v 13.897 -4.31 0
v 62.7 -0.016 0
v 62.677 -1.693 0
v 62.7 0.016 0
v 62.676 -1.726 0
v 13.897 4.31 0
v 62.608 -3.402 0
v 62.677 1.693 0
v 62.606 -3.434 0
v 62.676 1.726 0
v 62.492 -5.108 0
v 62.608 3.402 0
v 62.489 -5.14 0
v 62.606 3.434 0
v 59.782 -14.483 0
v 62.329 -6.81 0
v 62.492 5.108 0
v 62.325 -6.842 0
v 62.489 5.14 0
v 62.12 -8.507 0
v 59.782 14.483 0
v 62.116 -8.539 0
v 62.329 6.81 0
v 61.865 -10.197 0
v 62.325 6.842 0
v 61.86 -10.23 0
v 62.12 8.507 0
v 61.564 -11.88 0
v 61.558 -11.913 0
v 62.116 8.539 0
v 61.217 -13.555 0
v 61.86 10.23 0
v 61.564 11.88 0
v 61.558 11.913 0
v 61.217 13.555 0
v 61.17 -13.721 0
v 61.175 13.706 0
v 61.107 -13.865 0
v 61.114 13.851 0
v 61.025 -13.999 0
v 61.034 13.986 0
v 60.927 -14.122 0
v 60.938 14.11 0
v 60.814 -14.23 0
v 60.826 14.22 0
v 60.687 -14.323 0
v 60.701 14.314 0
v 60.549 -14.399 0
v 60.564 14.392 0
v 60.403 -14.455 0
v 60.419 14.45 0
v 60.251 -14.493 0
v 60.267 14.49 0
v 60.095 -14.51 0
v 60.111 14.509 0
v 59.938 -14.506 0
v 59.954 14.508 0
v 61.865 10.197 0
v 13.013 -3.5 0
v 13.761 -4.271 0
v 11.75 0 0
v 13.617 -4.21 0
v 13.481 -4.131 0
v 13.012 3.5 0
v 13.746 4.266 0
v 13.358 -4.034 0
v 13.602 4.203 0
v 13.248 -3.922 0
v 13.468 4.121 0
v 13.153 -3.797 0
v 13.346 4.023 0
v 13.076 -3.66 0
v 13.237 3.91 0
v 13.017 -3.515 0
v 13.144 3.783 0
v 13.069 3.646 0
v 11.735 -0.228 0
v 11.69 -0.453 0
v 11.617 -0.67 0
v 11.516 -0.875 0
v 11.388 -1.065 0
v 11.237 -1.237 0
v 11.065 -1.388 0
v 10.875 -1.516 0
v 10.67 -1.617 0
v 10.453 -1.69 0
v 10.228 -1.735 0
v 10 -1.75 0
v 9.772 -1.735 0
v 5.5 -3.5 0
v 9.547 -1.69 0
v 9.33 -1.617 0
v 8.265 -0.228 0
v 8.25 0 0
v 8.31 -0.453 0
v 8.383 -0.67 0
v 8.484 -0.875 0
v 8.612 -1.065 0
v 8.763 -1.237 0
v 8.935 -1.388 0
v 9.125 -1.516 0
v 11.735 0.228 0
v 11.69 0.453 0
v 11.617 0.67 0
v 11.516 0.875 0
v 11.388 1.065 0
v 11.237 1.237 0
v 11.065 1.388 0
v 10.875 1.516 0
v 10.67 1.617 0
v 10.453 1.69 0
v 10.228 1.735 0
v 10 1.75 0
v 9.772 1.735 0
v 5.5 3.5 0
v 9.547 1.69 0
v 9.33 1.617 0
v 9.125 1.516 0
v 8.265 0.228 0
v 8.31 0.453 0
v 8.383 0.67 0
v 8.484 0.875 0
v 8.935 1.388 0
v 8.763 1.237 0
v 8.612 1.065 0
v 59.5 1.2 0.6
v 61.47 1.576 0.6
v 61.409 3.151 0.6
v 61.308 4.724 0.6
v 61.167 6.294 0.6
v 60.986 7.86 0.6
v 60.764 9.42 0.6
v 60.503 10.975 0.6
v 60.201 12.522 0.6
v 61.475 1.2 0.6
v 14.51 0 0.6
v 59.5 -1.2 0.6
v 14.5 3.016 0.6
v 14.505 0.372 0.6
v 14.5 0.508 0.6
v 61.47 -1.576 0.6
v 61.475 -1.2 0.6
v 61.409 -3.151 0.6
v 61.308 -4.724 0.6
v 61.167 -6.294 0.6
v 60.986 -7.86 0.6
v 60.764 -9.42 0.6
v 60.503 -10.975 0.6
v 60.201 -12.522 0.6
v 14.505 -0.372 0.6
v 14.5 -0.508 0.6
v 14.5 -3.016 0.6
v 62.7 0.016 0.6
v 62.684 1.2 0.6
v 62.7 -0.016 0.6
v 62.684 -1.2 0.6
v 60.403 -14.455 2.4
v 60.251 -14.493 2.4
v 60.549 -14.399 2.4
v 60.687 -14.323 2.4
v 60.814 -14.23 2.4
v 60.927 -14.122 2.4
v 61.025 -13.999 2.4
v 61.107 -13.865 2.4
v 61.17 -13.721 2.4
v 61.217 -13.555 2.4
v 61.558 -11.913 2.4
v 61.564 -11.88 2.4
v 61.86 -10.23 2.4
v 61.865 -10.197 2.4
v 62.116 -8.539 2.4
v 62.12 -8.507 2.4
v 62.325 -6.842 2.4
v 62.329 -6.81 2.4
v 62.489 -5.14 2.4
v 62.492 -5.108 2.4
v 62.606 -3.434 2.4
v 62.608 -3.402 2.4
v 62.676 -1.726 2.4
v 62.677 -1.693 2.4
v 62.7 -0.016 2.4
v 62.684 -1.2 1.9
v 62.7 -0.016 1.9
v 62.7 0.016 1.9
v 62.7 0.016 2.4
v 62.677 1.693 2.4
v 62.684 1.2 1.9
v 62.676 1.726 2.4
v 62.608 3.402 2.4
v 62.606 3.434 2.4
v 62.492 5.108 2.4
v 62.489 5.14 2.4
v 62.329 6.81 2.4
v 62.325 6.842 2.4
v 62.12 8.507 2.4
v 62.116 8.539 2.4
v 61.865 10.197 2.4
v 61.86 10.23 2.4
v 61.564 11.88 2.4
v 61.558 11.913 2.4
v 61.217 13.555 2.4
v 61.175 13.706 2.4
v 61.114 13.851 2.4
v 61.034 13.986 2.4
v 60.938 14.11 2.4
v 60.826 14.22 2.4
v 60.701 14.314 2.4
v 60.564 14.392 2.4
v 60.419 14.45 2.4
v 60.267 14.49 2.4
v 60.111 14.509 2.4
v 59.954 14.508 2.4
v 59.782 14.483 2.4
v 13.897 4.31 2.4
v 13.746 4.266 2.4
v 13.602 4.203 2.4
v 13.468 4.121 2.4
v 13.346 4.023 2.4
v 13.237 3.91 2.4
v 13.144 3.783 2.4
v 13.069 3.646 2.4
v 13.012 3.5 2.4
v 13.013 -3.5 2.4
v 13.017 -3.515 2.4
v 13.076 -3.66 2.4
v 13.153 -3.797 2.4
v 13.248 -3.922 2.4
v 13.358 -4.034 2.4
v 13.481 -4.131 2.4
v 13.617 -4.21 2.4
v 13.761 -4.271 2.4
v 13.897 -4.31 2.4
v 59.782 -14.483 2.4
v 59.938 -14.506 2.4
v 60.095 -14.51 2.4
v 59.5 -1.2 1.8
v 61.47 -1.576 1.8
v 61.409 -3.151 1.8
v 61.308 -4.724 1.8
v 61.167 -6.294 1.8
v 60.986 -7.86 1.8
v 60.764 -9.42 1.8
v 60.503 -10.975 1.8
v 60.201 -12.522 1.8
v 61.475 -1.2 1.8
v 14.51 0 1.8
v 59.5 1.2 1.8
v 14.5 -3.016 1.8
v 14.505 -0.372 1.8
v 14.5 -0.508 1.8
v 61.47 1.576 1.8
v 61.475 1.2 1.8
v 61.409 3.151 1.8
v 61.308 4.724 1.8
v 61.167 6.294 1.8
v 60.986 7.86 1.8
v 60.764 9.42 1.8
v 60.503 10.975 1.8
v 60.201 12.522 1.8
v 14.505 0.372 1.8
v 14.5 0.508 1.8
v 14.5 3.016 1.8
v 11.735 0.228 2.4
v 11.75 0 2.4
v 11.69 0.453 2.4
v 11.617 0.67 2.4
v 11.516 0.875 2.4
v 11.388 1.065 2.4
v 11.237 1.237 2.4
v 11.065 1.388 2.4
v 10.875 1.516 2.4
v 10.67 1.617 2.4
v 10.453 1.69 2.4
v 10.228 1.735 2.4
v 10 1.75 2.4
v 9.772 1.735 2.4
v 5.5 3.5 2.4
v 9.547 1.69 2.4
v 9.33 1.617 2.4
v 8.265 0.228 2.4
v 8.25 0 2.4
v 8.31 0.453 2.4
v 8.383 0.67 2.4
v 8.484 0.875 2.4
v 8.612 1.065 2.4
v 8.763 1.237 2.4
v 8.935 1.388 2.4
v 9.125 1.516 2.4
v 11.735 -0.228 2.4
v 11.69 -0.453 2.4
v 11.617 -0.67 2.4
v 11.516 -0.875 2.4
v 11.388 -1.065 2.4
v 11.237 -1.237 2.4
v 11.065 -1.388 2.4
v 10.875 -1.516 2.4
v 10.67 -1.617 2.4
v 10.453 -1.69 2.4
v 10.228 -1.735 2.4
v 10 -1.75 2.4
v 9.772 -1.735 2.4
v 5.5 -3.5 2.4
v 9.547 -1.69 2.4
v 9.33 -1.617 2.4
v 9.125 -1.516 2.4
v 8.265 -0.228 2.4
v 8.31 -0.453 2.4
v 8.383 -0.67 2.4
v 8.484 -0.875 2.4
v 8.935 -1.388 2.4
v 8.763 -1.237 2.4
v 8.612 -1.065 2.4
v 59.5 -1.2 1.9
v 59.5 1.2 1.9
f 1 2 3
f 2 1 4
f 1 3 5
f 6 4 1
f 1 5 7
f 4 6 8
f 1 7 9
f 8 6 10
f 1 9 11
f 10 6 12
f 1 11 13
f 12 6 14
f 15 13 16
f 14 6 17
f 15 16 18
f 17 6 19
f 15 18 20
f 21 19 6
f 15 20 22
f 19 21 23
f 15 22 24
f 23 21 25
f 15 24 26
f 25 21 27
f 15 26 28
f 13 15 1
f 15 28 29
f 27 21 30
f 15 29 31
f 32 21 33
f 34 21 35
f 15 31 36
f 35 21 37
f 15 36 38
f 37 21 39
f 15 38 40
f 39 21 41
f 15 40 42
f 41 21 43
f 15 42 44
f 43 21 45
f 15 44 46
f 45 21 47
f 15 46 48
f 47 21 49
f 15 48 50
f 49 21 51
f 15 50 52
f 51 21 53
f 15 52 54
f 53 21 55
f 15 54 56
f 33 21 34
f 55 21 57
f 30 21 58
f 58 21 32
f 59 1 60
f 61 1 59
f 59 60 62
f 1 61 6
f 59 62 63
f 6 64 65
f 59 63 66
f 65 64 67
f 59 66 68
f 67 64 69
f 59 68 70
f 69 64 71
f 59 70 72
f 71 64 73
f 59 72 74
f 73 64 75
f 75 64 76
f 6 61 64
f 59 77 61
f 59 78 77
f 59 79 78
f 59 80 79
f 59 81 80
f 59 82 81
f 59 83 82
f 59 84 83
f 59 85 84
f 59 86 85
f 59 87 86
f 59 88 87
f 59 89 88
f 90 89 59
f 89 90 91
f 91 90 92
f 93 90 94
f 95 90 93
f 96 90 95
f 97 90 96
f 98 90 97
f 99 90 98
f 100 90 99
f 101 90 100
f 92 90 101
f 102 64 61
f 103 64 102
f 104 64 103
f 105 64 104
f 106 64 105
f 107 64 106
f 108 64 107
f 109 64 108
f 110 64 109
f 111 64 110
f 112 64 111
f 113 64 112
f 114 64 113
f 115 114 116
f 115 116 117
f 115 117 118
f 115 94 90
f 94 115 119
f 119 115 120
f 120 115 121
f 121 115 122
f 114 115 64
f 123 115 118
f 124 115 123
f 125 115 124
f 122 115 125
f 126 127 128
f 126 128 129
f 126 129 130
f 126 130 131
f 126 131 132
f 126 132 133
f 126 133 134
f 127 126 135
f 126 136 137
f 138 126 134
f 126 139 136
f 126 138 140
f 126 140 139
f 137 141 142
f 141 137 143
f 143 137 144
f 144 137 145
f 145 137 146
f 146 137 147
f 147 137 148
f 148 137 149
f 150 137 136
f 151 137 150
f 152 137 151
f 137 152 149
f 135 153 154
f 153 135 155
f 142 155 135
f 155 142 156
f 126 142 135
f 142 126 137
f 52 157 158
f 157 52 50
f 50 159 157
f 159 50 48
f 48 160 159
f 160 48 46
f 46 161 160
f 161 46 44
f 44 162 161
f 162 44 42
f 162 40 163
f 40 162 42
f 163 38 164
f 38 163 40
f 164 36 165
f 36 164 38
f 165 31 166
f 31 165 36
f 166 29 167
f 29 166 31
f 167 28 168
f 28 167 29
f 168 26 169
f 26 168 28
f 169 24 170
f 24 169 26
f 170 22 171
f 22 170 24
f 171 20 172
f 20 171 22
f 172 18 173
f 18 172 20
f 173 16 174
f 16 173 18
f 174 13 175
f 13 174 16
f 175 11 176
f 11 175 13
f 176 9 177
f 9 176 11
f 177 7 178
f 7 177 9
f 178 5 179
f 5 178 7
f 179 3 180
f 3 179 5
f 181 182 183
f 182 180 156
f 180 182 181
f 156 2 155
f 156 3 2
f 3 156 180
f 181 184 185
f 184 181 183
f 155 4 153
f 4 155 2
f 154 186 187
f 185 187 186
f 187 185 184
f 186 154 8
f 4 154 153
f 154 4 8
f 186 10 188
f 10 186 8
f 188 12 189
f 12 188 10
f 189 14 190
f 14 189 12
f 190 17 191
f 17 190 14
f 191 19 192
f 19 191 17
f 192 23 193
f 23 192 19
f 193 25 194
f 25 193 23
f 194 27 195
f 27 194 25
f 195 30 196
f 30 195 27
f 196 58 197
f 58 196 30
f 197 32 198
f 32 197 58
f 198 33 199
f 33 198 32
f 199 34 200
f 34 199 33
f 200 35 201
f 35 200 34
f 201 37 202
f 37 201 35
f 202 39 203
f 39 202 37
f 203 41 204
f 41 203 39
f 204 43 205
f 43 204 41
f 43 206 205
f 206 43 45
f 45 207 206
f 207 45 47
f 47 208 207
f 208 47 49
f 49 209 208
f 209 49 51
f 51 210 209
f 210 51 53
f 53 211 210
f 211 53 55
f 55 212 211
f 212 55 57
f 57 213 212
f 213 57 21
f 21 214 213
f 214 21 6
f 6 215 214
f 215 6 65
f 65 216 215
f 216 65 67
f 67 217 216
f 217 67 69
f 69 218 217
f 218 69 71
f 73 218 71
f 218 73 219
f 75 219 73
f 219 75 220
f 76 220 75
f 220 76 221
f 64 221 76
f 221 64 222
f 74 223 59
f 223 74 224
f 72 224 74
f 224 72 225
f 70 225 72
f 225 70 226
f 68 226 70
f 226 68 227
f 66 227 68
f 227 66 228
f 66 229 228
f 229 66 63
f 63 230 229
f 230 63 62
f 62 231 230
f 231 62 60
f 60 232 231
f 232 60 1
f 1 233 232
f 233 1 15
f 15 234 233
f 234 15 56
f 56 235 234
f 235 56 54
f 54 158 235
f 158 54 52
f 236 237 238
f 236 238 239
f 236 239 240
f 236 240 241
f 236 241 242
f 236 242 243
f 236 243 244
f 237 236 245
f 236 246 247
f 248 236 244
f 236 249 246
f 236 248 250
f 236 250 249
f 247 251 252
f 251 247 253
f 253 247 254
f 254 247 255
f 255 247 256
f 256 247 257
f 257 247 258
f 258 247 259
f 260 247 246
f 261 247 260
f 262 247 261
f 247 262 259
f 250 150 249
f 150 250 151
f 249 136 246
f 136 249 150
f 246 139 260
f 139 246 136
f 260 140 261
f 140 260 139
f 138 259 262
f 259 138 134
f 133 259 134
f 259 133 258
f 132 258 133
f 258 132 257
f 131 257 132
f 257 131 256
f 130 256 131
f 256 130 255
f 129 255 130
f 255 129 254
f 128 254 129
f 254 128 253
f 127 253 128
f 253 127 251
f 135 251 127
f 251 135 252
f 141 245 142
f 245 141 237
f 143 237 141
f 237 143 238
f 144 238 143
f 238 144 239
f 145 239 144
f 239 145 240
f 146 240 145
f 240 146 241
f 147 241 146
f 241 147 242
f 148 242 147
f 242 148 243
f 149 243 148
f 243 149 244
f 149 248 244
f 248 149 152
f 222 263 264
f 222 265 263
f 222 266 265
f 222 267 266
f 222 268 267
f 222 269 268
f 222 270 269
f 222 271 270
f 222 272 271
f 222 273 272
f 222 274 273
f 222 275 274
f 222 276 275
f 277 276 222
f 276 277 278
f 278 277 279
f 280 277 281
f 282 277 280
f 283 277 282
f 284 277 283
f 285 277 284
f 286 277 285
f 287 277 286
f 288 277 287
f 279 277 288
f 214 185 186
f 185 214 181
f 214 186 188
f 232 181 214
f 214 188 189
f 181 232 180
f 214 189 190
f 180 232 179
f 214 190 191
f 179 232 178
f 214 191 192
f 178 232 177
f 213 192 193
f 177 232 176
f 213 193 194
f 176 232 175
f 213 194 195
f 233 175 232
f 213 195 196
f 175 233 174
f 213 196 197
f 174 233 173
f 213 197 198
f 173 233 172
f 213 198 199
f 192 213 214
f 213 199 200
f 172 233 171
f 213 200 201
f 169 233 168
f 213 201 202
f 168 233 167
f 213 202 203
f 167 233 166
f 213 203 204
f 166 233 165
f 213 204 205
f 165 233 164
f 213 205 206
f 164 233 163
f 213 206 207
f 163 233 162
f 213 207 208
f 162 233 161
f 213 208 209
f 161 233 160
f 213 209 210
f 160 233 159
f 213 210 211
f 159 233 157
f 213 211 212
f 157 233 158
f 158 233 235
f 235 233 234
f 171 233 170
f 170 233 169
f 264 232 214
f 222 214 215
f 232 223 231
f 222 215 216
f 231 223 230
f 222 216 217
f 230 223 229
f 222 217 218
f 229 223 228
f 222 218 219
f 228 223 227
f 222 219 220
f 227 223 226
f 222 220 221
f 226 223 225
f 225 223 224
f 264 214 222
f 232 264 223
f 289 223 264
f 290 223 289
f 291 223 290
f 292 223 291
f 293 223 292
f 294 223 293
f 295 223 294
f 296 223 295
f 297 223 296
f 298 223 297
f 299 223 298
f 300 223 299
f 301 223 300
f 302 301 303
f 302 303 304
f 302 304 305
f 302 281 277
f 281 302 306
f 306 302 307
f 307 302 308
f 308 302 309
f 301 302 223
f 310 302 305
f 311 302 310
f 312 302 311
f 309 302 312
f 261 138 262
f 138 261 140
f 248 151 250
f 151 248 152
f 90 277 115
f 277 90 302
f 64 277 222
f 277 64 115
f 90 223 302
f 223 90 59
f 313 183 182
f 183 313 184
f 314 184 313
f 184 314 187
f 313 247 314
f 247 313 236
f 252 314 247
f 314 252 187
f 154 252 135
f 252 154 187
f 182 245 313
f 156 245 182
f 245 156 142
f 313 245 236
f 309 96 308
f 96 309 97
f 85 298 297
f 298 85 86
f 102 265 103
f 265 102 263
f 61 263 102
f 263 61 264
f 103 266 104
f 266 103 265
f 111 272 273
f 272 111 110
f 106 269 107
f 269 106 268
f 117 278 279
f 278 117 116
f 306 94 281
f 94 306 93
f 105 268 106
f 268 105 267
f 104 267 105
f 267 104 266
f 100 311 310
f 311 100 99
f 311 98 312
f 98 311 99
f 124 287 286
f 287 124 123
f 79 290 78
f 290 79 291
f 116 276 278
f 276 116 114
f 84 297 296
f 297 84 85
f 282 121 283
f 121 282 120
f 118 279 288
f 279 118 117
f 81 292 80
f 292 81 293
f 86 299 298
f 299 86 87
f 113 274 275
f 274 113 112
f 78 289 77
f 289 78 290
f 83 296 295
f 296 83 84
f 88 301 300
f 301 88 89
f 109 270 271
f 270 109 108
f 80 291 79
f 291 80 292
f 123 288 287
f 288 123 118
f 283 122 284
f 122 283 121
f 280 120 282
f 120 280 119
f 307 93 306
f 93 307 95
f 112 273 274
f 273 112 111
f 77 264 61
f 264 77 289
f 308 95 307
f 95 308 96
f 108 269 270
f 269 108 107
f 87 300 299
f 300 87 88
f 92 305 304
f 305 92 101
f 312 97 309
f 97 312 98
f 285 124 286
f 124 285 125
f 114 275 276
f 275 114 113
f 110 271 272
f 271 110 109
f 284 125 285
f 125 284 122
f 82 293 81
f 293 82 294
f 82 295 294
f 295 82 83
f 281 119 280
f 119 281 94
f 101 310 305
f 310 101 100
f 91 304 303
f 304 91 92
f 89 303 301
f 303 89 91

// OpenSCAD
// file: parameters.scad
// =============================================================================
// Gen-AY Vernier flux-claw mega - WOUND-AWARE (HARD GATE)
// Dual-rotor vernier: Rotor B +22.5 deg vs 12-slot stator; O5 flux claws
// =============================================================================

wire_awg            = 26;
wire_od             = 0.45;
turns               = 210;      // +5 vs Gen-AV 205
fill                = 0.70;
layers_per_face     = 2;
wind_build_axial    = layers_per_face * wire_od * fill;   // 0.63 mm
wind_build_radial   = 3 * wire_od * fill;                 // 0.945 mm

coil_id_r           = 14.5;
coil_od_r           = 61.5;
span_deg            = 25.0;
former_web          = 1.20;     // print floor LB walls
flange_t            = 0.60;
wall                = 1.2;
slot_w              = 2.4;
mount_hole          = 3.5;
tab_len             = 7.0;

former_bare_h       = former_web + 2 * flange_t;            // 2.40 mm
coil_envelope_h     = former_bare_h + 2 * wind_build_axial; // 3.66 mm

run_clear           = 0.50;
gap_spacer_h        = run_clear + wind_build_axial;         // 1.13 mm
m2m                 = coil_envelope_h + 2 * run_clear;      // 4.66 mm

coil_stations       = 12;
bay_r_in            = coil_id_r - 2.0 - wind_build_radial;
bay_r_out           = coil_od_r + 2.0 + wind_build_radial;
bay_span            = span_deg + 4.0;
bay_offset          = 2.0;
stator_thick        = former_bare_h;
stator_od           = 160.0;
shaft_clear_stator  = 34.0;
coil_mount_r        = 25.5;

large_pocket_d      = 20.3;
small_pocket_d      = 5.3;
pocket_h            = 5.2;
large_n             = 8;
R_large             = 38.0;     // closer to copper centroid vs AV R=38.5
R_small_inner       = 24.0;
R_small_mid         = 38.0;
R_small_outer       = 54.0;
carrier_od          = 156.0;
carrier_thick       = 7.5;
hub_h               = 10.0;
hub_od              = 30.0;
rotor_b_offset_deg  = 22.5;     // vernier offset vs 12-slot stator

shaft_bore          = 8.35;
bearing_d           = 21.85;
bearing_h           = 7.2;
m3_clear            = 3.5;
bolt_r_inner        = 36.0;
bolt_n_inner        = 6;
flange_bolt_r       = 72.0;
flange_bolt_n       = 6;
brace_r             = 68.0;
brace_d             = 4.3;
brace_n             = 4;

spacer_pad_od       = 14.0;
spacer_pad_id       = m3_clear;
endbell_od          = 160.0;
endbell_thick       = 8.0;
endbell_shaft_clear = 10.0;

$fn = 64;
// main file
// Gen-AY pancake former — wind BEFORE assembly
include <parameters.scad>;
$fn = 48;

module sector_2d(r_in, r_out, ang) {
    polygon([
        for (a = [-ang/2 : ang/16 : ang/2]) [r_in*cos(a), r_in*sin(a)],
        for (a = [ang/2 : -ang/16 : -ang/2]) [r_out*cos(a), r_out*sin(a)]
    ]);
}
module flange() {
    linear_extrude(flange_t) offset(r=wall) sector_2d(coil_id_r, coil_od_r, span_deg);
}
difference() {
    union() {
        flange();
        translate([0, 0, flange_t])
            linear_extrude(former_web)
                difference() {
                    offset(r=wall) sector_2d(coil_id_r, coil_od_r, span_deg);
                    sector_2d(coil_id_r + 0.01, coil_od_r - 0.01, span_deg - 1.5);
                }
        translate([0, 0, flange_t + former_web]) flange();
        translate([coil_id_r - tab_len - 2, -3.5, 0])
            cube([tab_len + 2, 7, former_bare_h]);
    }
    translate([coil_od_r - 2, -slot_w/2, flange_t])
        cube([wall + 4, slot_w, former_web + 0.1]);
    translate([coil_id_r - tab_len/2 - 1, 0, -0.1])
        cylinder(d=mount_hole, h=former_bare_h + 1);
}
